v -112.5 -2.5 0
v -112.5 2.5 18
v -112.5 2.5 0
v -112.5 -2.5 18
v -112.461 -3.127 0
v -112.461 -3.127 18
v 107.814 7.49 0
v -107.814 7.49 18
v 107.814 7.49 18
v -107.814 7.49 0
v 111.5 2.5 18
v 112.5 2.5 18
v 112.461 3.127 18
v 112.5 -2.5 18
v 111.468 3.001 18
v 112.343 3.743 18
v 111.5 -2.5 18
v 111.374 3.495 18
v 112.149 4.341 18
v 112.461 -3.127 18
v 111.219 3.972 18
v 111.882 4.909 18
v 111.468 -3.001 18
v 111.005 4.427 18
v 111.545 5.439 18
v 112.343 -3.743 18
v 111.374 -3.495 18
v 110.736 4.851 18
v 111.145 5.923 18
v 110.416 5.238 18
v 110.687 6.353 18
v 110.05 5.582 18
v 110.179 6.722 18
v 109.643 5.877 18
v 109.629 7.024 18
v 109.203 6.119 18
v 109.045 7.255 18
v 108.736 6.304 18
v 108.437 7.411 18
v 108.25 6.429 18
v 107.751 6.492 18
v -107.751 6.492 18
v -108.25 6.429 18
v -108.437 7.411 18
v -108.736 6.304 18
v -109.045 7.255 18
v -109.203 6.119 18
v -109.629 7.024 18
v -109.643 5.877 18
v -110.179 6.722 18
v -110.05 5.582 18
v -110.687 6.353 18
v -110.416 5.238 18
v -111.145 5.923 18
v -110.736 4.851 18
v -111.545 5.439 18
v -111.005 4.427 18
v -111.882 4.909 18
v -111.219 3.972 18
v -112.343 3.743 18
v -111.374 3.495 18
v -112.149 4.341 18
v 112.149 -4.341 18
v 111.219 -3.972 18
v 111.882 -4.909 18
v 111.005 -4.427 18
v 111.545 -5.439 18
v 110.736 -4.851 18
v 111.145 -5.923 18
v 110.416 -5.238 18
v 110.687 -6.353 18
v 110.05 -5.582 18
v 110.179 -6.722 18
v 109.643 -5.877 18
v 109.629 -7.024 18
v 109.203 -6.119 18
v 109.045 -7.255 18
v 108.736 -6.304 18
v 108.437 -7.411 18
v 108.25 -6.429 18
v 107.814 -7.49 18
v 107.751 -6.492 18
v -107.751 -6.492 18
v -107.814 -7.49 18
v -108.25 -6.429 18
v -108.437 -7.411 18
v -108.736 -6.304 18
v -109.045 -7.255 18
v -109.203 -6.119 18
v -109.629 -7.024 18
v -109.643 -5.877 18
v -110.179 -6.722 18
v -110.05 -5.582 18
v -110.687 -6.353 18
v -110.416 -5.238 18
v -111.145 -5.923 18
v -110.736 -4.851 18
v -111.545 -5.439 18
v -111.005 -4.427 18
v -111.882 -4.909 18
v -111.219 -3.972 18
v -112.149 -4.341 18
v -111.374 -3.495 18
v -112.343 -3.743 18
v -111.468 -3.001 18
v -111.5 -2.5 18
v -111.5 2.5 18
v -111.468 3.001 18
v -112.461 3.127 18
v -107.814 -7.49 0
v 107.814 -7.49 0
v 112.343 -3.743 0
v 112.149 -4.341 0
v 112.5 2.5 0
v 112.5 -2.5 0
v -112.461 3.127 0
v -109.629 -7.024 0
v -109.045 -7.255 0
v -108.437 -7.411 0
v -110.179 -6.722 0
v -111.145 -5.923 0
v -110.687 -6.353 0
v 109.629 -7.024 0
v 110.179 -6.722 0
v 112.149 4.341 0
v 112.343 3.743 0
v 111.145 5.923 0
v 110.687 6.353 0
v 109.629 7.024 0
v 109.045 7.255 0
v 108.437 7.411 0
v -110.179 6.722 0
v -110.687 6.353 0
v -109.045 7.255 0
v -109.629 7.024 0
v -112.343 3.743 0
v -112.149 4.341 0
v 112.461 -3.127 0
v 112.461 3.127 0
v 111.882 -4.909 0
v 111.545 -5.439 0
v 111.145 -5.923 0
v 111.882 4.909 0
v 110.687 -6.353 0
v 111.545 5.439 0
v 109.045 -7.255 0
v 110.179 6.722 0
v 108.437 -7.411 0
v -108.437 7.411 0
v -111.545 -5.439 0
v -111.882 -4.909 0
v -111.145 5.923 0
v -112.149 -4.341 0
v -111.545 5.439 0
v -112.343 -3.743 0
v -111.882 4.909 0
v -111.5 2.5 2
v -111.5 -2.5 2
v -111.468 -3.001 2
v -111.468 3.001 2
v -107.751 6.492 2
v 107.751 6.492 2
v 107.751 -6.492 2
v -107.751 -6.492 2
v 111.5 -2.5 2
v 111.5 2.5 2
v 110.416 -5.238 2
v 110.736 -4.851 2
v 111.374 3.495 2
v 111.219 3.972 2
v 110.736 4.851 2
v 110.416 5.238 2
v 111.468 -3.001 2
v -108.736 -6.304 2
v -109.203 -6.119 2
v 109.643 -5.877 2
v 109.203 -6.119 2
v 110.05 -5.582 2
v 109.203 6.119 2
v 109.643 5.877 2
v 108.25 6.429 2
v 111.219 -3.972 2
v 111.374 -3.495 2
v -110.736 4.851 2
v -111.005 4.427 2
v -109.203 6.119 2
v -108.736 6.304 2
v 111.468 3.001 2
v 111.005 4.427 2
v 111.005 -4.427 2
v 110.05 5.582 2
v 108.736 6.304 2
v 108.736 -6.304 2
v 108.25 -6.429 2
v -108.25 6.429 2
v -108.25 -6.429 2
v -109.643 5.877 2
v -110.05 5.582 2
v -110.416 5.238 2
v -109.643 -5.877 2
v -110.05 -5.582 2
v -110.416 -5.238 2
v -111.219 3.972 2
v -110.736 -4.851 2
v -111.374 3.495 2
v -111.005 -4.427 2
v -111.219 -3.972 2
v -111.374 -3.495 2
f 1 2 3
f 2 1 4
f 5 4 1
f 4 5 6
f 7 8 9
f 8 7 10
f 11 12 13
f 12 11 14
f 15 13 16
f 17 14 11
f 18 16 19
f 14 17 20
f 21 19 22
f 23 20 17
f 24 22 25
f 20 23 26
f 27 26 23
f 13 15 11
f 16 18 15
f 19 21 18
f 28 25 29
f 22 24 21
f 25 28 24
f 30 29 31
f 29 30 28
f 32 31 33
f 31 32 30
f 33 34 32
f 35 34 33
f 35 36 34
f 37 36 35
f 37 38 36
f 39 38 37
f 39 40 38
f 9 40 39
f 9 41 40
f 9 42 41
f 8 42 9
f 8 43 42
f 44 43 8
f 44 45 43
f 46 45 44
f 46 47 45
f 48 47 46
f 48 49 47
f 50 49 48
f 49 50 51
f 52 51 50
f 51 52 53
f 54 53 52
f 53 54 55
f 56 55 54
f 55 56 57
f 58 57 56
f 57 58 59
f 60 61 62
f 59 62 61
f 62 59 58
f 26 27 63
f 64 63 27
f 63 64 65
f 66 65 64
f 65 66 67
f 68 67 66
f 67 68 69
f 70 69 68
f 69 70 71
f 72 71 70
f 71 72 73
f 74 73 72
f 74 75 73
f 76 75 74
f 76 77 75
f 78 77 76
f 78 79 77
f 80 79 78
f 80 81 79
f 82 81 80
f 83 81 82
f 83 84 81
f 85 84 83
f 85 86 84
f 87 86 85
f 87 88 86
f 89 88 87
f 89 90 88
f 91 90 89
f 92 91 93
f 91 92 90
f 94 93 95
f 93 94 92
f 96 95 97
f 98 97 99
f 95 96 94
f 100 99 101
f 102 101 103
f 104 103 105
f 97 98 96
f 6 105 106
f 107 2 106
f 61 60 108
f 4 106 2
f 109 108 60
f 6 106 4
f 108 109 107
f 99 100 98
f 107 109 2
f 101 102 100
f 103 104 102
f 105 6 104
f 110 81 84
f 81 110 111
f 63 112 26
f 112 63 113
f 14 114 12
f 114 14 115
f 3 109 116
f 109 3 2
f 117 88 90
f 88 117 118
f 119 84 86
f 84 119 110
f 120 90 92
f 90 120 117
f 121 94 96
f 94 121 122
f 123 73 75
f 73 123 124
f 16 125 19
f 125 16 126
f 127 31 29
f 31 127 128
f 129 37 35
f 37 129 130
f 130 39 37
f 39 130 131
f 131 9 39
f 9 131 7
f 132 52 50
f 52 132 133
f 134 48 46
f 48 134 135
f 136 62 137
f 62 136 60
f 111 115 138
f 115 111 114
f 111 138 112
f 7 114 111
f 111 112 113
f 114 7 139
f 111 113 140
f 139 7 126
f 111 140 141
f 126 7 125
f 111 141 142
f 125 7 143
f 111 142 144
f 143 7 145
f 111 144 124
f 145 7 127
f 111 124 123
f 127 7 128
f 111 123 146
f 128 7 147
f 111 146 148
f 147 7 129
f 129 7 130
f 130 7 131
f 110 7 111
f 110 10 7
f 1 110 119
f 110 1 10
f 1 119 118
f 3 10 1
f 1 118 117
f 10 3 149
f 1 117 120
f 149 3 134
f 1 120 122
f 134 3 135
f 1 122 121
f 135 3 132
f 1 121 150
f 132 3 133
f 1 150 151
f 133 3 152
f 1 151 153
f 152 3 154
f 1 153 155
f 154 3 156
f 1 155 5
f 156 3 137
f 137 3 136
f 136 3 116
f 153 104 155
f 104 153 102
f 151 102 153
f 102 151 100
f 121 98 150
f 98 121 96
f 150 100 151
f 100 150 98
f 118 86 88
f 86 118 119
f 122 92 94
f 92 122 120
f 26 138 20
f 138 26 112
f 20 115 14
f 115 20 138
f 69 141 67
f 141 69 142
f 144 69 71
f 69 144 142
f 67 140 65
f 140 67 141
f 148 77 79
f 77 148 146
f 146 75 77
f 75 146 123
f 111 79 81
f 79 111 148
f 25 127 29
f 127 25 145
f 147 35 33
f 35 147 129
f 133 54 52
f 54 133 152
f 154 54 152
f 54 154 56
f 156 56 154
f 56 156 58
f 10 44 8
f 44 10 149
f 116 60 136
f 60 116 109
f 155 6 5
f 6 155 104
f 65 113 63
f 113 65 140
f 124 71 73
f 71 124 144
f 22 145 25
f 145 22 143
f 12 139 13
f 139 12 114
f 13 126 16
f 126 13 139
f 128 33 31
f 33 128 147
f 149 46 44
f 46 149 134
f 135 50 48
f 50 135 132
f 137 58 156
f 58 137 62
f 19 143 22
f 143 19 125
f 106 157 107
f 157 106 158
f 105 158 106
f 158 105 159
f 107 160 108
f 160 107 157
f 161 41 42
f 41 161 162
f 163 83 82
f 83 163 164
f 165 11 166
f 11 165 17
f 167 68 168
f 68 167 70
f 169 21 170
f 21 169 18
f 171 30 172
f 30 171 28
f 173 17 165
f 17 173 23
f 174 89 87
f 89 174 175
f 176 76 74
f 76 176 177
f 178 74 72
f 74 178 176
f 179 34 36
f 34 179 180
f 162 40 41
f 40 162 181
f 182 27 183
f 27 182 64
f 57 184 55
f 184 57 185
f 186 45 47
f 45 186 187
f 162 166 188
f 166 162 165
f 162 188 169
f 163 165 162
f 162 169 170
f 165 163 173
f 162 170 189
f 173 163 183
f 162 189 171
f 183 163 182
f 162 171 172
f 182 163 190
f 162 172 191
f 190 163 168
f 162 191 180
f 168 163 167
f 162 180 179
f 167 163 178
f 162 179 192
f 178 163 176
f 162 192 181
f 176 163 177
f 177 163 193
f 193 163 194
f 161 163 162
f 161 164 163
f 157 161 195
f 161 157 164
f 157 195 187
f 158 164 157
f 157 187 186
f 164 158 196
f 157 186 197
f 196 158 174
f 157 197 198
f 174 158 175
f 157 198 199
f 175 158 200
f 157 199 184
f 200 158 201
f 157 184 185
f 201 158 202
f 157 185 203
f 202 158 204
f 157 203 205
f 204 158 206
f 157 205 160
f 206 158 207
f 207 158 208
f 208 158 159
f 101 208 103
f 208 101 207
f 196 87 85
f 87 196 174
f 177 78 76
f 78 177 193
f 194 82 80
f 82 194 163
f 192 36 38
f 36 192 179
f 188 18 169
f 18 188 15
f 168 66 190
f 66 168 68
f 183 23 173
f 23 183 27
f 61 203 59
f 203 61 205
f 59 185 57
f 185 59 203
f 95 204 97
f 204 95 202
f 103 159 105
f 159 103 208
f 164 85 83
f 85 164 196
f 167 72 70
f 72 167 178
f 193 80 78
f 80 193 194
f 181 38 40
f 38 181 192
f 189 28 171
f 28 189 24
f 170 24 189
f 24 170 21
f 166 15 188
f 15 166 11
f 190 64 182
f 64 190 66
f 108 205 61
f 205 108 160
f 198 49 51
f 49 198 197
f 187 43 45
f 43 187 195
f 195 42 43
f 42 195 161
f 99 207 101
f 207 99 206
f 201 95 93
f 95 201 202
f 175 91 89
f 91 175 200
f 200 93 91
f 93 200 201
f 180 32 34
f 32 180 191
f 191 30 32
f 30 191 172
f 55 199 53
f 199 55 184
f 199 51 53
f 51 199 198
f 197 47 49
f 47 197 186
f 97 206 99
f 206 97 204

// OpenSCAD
$fn = 50;


difference() {
	union() {
		hull() {
			translate(v = [-107.5000000000, 2.5000000000, 0]) {
				cylinder(h = 18, r = 5);
			}
			translate(v = [107.5000000000, 2.5000000000, 0]) {
				cylinder(h = 18, r = 5);
			}
			translate(v = [-107.5000000000, -2.5000000000, 0]) {
				cylinder(h = 18, r = 5);
			}
			translate(v = [107.5000000000, -2.5000000000, 0]) {
				cylinder(h = 18, r = 5);
			}
		}
	}
	union() {
		translate(v = [0, 0, 2]) {
			hull() {
				translate(v = [-107.5000000000, 2.5000000000, 0]) {
					cylinder(h = 16, r = 4);
				}
				translate(v = [107.5000000000, 2.5000000000, 0]) {
					cylinder(h = 16, r = 4);
				}
				translate(v = [-107.5000000000, -2.5000000000, 0]) {
					cylinder(h = 16, r = 4);
				}
				translate(v = [107.5000000000, -2.5000000000, 0]) {
					cylinder(h = 16, r = 4);
				}
			}
		}
	}
}
